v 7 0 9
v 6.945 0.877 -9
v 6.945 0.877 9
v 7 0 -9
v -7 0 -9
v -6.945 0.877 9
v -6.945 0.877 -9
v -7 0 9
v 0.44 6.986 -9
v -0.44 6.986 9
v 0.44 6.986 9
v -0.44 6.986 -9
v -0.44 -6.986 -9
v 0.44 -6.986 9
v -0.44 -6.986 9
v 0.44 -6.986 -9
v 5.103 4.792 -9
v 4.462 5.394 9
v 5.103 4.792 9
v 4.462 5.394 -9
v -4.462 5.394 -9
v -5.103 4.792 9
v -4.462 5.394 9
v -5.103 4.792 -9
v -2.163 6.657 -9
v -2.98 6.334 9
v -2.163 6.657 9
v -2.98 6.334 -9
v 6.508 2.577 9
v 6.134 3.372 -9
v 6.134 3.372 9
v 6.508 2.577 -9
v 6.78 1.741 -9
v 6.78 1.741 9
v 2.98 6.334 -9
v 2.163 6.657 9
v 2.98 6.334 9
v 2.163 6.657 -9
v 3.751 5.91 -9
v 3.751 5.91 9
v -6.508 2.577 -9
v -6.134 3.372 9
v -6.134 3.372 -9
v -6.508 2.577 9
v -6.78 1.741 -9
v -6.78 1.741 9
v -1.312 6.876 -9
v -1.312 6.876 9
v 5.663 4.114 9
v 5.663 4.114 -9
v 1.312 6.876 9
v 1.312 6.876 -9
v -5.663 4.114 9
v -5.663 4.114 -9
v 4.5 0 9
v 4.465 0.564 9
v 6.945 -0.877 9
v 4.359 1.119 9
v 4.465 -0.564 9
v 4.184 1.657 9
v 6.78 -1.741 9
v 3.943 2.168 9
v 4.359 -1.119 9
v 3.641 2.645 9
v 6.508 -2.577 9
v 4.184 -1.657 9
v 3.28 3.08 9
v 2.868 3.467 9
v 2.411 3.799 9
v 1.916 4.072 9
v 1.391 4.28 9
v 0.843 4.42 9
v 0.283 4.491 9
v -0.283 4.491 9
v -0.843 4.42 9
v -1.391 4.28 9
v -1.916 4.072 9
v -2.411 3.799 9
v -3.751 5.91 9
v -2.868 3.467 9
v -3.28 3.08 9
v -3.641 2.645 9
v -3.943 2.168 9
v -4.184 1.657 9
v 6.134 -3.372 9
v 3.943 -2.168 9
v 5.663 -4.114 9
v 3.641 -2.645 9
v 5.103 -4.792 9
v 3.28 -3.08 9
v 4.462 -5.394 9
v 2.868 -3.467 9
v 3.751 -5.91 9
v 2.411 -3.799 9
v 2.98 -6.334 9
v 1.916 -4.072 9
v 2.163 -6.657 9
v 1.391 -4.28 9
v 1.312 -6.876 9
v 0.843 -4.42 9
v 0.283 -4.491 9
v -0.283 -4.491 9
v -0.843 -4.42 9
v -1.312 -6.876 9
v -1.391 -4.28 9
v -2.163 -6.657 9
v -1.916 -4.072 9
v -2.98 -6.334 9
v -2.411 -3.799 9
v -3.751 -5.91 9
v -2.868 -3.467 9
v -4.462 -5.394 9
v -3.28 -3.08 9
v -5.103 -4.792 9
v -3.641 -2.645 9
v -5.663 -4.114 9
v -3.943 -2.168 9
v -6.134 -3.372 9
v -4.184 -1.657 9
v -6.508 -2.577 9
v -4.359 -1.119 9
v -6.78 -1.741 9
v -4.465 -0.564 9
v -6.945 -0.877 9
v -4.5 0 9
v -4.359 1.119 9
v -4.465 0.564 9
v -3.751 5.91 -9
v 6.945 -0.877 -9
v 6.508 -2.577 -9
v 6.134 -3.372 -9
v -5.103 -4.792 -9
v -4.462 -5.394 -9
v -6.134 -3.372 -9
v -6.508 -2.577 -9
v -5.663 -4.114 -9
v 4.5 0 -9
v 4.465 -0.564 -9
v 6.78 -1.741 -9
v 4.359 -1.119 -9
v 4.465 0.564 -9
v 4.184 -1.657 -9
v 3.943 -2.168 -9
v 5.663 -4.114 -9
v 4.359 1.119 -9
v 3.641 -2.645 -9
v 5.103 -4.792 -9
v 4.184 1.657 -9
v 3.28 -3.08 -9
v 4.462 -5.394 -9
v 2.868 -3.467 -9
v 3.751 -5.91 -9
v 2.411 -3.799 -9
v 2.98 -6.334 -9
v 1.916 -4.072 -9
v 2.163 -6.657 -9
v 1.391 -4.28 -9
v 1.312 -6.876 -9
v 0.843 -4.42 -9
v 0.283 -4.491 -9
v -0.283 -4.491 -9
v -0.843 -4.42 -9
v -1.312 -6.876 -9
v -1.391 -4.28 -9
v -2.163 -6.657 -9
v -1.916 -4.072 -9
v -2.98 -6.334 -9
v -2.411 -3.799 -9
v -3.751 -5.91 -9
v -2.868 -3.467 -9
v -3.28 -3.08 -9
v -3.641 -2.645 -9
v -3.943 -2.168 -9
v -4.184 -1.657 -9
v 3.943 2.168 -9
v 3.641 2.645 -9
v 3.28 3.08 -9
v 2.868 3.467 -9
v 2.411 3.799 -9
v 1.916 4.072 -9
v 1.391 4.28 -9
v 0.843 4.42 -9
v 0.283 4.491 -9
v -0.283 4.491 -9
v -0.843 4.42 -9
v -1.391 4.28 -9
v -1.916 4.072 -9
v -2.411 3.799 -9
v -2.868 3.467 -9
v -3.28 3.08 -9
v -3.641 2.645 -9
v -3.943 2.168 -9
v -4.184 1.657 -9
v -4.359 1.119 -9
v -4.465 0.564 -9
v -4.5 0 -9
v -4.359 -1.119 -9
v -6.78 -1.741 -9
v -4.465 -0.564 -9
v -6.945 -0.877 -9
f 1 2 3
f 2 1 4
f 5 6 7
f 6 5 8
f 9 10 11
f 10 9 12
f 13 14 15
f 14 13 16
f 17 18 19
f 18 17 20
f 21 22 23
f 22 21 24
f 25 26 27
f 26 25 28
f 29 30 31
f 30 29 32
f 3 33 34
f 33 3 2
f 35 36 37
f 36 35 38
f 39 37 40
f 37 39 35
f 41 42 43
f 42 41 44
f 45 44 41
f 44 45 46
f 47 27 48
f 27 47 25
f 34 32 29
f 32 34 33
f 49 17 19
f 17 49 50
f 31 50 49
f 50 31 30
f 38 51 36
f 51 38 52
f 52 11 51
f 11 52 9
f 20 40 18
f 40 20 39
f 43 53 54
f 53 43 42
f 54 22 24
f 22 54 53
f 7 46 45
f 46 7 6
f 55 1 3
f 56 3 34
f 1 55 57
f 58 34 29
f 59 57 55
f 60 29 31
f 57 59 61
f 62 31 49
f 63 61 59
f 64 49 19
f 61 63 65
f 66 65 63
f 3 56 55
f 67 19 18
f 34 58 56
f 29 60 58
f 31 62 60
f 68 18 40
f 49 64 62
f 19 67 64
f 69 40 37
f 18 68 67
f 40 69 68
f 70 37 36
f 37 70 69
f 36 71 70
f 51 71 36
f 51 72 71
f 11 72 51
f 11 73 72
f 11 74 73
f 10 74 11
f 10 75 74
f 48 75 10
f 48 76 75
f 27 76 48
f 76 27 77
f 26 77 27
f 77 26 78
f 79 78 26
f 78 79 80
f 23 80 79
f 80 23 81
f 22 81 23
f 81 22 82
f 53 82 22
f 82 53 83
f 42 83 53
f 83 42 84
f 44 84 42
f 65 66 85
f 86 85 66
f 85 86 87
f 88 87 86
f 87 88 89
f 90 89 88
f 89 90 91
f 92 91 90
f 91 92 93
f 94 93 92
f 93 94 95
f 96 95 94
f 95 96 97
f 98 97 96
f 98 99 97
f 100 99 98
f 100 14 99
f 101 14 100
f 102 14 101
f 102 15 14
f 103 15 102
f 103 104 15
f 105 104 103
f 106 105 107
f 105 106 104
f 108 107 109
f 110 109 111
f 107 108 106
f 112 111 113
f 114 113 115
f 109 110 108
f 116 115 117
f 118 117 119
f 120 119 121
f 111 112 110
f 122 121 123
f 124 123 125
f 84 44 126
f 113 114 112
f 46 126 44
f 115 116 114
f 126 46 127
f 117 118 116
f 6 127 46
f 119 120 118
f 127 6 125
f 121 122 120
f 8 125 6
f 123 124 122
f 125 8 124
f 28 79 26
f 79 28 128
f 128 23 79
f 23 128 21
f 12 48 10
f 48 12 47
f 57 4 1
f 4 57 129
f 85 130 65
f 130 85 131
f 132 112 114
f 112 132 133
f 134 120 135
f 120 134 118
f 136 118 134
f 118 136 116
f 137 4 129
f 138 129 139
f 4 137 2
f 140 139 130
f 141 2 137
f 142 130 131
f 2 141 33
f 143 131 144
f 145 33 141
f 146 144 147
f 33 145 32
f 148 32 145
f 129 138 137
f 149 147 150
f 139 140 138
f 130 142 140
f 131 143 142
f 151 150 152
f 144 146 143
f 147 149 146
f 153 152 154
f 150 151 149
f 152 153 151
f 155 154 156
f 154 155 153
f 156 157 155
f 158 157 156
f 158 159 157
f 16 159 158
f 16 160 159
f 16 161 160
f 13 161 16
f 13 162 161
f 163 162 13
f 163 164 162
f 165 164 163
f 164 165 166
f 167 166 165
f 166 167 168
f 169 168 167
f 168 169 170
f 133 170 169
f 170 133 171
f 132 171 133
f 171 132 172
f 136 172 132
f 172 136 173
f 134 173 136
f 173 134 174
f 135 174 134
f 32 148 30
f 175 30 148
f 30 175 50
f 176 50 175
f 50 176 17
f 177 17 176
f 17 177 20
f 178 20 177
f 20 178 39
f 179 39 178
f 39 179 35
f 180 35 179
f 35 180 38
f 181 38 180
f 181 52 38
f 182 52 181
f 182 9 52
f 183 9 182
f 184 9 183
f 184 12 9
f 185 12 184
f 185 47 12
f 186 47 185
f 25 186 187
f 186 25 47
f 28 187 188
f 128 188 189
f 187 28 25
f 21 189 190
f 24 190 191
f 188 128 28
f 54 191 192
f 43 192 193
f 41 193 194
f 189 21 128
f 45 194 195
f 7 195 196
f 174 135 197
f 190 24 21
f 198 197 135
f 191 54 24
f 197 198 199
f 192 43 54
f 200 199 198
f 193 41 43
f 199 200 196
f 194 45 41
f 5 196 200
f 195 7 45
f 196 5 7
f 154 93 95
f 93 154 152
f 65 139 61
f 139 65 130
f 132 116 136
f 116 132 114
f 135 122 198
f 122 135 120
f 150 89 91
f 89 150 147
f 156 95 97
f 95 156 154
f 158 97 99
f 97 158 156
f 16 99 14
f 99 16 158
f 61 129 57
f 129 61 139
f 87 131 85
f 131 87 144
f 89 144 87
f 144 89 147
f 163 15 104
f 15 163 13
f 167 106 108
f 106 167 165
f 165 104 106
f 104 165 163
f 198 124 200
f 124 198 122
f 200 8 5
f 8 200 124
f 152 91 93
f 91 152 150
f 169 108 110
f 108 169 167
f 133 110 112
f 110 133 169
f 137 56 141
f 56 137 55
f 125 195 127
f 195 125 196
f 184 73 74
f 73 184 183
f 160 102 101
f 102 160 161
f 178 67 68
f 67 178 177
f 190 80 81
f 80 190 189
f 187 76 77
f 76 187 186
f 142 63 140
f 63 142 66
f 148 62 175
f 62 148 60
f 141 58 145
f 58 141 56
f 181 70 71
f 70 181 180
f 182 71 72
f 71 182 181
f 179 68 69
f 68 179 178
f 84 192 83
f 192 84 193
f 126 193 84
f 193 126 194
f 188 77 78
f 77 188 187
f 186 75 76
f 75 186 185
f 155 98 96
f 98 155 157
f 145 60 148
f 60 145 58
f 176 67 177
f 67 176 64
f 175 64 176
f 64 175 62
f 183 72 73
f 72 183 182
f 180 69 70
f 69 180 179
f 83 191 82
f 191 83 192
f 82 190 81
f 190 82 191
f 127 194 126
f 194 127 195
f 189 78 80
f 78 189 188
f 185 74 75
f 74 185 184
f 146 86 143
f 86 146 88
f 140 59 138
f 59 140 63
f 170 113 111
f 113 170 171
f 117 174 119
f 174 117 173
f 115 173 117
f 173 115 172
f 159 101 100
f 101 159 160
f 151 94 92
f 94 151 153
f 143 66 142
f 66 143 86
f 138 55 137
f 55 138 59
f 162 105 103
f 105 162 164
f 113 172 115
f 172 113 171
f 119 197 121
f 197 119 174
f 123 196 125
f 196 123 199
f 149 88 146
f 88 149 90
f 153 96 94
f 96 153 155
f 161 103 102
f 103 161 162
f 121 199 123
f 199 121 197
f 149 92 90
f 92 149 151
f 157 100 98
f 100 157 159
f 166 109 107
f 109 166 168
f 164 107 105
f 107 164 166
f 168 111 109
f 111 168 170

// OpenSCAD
$fn = 50;


difference() {
	union() {
		translate(v = [0, 0, -9.0000000000]) {
			cylinder(h = 18, r = 7.0000000000);
		}
	}
	union() {
		translate(v = [0, 0, -100.0000000000]) {
			cylinder(h = 200, r = 4.5000000000);
		}
	}
}
